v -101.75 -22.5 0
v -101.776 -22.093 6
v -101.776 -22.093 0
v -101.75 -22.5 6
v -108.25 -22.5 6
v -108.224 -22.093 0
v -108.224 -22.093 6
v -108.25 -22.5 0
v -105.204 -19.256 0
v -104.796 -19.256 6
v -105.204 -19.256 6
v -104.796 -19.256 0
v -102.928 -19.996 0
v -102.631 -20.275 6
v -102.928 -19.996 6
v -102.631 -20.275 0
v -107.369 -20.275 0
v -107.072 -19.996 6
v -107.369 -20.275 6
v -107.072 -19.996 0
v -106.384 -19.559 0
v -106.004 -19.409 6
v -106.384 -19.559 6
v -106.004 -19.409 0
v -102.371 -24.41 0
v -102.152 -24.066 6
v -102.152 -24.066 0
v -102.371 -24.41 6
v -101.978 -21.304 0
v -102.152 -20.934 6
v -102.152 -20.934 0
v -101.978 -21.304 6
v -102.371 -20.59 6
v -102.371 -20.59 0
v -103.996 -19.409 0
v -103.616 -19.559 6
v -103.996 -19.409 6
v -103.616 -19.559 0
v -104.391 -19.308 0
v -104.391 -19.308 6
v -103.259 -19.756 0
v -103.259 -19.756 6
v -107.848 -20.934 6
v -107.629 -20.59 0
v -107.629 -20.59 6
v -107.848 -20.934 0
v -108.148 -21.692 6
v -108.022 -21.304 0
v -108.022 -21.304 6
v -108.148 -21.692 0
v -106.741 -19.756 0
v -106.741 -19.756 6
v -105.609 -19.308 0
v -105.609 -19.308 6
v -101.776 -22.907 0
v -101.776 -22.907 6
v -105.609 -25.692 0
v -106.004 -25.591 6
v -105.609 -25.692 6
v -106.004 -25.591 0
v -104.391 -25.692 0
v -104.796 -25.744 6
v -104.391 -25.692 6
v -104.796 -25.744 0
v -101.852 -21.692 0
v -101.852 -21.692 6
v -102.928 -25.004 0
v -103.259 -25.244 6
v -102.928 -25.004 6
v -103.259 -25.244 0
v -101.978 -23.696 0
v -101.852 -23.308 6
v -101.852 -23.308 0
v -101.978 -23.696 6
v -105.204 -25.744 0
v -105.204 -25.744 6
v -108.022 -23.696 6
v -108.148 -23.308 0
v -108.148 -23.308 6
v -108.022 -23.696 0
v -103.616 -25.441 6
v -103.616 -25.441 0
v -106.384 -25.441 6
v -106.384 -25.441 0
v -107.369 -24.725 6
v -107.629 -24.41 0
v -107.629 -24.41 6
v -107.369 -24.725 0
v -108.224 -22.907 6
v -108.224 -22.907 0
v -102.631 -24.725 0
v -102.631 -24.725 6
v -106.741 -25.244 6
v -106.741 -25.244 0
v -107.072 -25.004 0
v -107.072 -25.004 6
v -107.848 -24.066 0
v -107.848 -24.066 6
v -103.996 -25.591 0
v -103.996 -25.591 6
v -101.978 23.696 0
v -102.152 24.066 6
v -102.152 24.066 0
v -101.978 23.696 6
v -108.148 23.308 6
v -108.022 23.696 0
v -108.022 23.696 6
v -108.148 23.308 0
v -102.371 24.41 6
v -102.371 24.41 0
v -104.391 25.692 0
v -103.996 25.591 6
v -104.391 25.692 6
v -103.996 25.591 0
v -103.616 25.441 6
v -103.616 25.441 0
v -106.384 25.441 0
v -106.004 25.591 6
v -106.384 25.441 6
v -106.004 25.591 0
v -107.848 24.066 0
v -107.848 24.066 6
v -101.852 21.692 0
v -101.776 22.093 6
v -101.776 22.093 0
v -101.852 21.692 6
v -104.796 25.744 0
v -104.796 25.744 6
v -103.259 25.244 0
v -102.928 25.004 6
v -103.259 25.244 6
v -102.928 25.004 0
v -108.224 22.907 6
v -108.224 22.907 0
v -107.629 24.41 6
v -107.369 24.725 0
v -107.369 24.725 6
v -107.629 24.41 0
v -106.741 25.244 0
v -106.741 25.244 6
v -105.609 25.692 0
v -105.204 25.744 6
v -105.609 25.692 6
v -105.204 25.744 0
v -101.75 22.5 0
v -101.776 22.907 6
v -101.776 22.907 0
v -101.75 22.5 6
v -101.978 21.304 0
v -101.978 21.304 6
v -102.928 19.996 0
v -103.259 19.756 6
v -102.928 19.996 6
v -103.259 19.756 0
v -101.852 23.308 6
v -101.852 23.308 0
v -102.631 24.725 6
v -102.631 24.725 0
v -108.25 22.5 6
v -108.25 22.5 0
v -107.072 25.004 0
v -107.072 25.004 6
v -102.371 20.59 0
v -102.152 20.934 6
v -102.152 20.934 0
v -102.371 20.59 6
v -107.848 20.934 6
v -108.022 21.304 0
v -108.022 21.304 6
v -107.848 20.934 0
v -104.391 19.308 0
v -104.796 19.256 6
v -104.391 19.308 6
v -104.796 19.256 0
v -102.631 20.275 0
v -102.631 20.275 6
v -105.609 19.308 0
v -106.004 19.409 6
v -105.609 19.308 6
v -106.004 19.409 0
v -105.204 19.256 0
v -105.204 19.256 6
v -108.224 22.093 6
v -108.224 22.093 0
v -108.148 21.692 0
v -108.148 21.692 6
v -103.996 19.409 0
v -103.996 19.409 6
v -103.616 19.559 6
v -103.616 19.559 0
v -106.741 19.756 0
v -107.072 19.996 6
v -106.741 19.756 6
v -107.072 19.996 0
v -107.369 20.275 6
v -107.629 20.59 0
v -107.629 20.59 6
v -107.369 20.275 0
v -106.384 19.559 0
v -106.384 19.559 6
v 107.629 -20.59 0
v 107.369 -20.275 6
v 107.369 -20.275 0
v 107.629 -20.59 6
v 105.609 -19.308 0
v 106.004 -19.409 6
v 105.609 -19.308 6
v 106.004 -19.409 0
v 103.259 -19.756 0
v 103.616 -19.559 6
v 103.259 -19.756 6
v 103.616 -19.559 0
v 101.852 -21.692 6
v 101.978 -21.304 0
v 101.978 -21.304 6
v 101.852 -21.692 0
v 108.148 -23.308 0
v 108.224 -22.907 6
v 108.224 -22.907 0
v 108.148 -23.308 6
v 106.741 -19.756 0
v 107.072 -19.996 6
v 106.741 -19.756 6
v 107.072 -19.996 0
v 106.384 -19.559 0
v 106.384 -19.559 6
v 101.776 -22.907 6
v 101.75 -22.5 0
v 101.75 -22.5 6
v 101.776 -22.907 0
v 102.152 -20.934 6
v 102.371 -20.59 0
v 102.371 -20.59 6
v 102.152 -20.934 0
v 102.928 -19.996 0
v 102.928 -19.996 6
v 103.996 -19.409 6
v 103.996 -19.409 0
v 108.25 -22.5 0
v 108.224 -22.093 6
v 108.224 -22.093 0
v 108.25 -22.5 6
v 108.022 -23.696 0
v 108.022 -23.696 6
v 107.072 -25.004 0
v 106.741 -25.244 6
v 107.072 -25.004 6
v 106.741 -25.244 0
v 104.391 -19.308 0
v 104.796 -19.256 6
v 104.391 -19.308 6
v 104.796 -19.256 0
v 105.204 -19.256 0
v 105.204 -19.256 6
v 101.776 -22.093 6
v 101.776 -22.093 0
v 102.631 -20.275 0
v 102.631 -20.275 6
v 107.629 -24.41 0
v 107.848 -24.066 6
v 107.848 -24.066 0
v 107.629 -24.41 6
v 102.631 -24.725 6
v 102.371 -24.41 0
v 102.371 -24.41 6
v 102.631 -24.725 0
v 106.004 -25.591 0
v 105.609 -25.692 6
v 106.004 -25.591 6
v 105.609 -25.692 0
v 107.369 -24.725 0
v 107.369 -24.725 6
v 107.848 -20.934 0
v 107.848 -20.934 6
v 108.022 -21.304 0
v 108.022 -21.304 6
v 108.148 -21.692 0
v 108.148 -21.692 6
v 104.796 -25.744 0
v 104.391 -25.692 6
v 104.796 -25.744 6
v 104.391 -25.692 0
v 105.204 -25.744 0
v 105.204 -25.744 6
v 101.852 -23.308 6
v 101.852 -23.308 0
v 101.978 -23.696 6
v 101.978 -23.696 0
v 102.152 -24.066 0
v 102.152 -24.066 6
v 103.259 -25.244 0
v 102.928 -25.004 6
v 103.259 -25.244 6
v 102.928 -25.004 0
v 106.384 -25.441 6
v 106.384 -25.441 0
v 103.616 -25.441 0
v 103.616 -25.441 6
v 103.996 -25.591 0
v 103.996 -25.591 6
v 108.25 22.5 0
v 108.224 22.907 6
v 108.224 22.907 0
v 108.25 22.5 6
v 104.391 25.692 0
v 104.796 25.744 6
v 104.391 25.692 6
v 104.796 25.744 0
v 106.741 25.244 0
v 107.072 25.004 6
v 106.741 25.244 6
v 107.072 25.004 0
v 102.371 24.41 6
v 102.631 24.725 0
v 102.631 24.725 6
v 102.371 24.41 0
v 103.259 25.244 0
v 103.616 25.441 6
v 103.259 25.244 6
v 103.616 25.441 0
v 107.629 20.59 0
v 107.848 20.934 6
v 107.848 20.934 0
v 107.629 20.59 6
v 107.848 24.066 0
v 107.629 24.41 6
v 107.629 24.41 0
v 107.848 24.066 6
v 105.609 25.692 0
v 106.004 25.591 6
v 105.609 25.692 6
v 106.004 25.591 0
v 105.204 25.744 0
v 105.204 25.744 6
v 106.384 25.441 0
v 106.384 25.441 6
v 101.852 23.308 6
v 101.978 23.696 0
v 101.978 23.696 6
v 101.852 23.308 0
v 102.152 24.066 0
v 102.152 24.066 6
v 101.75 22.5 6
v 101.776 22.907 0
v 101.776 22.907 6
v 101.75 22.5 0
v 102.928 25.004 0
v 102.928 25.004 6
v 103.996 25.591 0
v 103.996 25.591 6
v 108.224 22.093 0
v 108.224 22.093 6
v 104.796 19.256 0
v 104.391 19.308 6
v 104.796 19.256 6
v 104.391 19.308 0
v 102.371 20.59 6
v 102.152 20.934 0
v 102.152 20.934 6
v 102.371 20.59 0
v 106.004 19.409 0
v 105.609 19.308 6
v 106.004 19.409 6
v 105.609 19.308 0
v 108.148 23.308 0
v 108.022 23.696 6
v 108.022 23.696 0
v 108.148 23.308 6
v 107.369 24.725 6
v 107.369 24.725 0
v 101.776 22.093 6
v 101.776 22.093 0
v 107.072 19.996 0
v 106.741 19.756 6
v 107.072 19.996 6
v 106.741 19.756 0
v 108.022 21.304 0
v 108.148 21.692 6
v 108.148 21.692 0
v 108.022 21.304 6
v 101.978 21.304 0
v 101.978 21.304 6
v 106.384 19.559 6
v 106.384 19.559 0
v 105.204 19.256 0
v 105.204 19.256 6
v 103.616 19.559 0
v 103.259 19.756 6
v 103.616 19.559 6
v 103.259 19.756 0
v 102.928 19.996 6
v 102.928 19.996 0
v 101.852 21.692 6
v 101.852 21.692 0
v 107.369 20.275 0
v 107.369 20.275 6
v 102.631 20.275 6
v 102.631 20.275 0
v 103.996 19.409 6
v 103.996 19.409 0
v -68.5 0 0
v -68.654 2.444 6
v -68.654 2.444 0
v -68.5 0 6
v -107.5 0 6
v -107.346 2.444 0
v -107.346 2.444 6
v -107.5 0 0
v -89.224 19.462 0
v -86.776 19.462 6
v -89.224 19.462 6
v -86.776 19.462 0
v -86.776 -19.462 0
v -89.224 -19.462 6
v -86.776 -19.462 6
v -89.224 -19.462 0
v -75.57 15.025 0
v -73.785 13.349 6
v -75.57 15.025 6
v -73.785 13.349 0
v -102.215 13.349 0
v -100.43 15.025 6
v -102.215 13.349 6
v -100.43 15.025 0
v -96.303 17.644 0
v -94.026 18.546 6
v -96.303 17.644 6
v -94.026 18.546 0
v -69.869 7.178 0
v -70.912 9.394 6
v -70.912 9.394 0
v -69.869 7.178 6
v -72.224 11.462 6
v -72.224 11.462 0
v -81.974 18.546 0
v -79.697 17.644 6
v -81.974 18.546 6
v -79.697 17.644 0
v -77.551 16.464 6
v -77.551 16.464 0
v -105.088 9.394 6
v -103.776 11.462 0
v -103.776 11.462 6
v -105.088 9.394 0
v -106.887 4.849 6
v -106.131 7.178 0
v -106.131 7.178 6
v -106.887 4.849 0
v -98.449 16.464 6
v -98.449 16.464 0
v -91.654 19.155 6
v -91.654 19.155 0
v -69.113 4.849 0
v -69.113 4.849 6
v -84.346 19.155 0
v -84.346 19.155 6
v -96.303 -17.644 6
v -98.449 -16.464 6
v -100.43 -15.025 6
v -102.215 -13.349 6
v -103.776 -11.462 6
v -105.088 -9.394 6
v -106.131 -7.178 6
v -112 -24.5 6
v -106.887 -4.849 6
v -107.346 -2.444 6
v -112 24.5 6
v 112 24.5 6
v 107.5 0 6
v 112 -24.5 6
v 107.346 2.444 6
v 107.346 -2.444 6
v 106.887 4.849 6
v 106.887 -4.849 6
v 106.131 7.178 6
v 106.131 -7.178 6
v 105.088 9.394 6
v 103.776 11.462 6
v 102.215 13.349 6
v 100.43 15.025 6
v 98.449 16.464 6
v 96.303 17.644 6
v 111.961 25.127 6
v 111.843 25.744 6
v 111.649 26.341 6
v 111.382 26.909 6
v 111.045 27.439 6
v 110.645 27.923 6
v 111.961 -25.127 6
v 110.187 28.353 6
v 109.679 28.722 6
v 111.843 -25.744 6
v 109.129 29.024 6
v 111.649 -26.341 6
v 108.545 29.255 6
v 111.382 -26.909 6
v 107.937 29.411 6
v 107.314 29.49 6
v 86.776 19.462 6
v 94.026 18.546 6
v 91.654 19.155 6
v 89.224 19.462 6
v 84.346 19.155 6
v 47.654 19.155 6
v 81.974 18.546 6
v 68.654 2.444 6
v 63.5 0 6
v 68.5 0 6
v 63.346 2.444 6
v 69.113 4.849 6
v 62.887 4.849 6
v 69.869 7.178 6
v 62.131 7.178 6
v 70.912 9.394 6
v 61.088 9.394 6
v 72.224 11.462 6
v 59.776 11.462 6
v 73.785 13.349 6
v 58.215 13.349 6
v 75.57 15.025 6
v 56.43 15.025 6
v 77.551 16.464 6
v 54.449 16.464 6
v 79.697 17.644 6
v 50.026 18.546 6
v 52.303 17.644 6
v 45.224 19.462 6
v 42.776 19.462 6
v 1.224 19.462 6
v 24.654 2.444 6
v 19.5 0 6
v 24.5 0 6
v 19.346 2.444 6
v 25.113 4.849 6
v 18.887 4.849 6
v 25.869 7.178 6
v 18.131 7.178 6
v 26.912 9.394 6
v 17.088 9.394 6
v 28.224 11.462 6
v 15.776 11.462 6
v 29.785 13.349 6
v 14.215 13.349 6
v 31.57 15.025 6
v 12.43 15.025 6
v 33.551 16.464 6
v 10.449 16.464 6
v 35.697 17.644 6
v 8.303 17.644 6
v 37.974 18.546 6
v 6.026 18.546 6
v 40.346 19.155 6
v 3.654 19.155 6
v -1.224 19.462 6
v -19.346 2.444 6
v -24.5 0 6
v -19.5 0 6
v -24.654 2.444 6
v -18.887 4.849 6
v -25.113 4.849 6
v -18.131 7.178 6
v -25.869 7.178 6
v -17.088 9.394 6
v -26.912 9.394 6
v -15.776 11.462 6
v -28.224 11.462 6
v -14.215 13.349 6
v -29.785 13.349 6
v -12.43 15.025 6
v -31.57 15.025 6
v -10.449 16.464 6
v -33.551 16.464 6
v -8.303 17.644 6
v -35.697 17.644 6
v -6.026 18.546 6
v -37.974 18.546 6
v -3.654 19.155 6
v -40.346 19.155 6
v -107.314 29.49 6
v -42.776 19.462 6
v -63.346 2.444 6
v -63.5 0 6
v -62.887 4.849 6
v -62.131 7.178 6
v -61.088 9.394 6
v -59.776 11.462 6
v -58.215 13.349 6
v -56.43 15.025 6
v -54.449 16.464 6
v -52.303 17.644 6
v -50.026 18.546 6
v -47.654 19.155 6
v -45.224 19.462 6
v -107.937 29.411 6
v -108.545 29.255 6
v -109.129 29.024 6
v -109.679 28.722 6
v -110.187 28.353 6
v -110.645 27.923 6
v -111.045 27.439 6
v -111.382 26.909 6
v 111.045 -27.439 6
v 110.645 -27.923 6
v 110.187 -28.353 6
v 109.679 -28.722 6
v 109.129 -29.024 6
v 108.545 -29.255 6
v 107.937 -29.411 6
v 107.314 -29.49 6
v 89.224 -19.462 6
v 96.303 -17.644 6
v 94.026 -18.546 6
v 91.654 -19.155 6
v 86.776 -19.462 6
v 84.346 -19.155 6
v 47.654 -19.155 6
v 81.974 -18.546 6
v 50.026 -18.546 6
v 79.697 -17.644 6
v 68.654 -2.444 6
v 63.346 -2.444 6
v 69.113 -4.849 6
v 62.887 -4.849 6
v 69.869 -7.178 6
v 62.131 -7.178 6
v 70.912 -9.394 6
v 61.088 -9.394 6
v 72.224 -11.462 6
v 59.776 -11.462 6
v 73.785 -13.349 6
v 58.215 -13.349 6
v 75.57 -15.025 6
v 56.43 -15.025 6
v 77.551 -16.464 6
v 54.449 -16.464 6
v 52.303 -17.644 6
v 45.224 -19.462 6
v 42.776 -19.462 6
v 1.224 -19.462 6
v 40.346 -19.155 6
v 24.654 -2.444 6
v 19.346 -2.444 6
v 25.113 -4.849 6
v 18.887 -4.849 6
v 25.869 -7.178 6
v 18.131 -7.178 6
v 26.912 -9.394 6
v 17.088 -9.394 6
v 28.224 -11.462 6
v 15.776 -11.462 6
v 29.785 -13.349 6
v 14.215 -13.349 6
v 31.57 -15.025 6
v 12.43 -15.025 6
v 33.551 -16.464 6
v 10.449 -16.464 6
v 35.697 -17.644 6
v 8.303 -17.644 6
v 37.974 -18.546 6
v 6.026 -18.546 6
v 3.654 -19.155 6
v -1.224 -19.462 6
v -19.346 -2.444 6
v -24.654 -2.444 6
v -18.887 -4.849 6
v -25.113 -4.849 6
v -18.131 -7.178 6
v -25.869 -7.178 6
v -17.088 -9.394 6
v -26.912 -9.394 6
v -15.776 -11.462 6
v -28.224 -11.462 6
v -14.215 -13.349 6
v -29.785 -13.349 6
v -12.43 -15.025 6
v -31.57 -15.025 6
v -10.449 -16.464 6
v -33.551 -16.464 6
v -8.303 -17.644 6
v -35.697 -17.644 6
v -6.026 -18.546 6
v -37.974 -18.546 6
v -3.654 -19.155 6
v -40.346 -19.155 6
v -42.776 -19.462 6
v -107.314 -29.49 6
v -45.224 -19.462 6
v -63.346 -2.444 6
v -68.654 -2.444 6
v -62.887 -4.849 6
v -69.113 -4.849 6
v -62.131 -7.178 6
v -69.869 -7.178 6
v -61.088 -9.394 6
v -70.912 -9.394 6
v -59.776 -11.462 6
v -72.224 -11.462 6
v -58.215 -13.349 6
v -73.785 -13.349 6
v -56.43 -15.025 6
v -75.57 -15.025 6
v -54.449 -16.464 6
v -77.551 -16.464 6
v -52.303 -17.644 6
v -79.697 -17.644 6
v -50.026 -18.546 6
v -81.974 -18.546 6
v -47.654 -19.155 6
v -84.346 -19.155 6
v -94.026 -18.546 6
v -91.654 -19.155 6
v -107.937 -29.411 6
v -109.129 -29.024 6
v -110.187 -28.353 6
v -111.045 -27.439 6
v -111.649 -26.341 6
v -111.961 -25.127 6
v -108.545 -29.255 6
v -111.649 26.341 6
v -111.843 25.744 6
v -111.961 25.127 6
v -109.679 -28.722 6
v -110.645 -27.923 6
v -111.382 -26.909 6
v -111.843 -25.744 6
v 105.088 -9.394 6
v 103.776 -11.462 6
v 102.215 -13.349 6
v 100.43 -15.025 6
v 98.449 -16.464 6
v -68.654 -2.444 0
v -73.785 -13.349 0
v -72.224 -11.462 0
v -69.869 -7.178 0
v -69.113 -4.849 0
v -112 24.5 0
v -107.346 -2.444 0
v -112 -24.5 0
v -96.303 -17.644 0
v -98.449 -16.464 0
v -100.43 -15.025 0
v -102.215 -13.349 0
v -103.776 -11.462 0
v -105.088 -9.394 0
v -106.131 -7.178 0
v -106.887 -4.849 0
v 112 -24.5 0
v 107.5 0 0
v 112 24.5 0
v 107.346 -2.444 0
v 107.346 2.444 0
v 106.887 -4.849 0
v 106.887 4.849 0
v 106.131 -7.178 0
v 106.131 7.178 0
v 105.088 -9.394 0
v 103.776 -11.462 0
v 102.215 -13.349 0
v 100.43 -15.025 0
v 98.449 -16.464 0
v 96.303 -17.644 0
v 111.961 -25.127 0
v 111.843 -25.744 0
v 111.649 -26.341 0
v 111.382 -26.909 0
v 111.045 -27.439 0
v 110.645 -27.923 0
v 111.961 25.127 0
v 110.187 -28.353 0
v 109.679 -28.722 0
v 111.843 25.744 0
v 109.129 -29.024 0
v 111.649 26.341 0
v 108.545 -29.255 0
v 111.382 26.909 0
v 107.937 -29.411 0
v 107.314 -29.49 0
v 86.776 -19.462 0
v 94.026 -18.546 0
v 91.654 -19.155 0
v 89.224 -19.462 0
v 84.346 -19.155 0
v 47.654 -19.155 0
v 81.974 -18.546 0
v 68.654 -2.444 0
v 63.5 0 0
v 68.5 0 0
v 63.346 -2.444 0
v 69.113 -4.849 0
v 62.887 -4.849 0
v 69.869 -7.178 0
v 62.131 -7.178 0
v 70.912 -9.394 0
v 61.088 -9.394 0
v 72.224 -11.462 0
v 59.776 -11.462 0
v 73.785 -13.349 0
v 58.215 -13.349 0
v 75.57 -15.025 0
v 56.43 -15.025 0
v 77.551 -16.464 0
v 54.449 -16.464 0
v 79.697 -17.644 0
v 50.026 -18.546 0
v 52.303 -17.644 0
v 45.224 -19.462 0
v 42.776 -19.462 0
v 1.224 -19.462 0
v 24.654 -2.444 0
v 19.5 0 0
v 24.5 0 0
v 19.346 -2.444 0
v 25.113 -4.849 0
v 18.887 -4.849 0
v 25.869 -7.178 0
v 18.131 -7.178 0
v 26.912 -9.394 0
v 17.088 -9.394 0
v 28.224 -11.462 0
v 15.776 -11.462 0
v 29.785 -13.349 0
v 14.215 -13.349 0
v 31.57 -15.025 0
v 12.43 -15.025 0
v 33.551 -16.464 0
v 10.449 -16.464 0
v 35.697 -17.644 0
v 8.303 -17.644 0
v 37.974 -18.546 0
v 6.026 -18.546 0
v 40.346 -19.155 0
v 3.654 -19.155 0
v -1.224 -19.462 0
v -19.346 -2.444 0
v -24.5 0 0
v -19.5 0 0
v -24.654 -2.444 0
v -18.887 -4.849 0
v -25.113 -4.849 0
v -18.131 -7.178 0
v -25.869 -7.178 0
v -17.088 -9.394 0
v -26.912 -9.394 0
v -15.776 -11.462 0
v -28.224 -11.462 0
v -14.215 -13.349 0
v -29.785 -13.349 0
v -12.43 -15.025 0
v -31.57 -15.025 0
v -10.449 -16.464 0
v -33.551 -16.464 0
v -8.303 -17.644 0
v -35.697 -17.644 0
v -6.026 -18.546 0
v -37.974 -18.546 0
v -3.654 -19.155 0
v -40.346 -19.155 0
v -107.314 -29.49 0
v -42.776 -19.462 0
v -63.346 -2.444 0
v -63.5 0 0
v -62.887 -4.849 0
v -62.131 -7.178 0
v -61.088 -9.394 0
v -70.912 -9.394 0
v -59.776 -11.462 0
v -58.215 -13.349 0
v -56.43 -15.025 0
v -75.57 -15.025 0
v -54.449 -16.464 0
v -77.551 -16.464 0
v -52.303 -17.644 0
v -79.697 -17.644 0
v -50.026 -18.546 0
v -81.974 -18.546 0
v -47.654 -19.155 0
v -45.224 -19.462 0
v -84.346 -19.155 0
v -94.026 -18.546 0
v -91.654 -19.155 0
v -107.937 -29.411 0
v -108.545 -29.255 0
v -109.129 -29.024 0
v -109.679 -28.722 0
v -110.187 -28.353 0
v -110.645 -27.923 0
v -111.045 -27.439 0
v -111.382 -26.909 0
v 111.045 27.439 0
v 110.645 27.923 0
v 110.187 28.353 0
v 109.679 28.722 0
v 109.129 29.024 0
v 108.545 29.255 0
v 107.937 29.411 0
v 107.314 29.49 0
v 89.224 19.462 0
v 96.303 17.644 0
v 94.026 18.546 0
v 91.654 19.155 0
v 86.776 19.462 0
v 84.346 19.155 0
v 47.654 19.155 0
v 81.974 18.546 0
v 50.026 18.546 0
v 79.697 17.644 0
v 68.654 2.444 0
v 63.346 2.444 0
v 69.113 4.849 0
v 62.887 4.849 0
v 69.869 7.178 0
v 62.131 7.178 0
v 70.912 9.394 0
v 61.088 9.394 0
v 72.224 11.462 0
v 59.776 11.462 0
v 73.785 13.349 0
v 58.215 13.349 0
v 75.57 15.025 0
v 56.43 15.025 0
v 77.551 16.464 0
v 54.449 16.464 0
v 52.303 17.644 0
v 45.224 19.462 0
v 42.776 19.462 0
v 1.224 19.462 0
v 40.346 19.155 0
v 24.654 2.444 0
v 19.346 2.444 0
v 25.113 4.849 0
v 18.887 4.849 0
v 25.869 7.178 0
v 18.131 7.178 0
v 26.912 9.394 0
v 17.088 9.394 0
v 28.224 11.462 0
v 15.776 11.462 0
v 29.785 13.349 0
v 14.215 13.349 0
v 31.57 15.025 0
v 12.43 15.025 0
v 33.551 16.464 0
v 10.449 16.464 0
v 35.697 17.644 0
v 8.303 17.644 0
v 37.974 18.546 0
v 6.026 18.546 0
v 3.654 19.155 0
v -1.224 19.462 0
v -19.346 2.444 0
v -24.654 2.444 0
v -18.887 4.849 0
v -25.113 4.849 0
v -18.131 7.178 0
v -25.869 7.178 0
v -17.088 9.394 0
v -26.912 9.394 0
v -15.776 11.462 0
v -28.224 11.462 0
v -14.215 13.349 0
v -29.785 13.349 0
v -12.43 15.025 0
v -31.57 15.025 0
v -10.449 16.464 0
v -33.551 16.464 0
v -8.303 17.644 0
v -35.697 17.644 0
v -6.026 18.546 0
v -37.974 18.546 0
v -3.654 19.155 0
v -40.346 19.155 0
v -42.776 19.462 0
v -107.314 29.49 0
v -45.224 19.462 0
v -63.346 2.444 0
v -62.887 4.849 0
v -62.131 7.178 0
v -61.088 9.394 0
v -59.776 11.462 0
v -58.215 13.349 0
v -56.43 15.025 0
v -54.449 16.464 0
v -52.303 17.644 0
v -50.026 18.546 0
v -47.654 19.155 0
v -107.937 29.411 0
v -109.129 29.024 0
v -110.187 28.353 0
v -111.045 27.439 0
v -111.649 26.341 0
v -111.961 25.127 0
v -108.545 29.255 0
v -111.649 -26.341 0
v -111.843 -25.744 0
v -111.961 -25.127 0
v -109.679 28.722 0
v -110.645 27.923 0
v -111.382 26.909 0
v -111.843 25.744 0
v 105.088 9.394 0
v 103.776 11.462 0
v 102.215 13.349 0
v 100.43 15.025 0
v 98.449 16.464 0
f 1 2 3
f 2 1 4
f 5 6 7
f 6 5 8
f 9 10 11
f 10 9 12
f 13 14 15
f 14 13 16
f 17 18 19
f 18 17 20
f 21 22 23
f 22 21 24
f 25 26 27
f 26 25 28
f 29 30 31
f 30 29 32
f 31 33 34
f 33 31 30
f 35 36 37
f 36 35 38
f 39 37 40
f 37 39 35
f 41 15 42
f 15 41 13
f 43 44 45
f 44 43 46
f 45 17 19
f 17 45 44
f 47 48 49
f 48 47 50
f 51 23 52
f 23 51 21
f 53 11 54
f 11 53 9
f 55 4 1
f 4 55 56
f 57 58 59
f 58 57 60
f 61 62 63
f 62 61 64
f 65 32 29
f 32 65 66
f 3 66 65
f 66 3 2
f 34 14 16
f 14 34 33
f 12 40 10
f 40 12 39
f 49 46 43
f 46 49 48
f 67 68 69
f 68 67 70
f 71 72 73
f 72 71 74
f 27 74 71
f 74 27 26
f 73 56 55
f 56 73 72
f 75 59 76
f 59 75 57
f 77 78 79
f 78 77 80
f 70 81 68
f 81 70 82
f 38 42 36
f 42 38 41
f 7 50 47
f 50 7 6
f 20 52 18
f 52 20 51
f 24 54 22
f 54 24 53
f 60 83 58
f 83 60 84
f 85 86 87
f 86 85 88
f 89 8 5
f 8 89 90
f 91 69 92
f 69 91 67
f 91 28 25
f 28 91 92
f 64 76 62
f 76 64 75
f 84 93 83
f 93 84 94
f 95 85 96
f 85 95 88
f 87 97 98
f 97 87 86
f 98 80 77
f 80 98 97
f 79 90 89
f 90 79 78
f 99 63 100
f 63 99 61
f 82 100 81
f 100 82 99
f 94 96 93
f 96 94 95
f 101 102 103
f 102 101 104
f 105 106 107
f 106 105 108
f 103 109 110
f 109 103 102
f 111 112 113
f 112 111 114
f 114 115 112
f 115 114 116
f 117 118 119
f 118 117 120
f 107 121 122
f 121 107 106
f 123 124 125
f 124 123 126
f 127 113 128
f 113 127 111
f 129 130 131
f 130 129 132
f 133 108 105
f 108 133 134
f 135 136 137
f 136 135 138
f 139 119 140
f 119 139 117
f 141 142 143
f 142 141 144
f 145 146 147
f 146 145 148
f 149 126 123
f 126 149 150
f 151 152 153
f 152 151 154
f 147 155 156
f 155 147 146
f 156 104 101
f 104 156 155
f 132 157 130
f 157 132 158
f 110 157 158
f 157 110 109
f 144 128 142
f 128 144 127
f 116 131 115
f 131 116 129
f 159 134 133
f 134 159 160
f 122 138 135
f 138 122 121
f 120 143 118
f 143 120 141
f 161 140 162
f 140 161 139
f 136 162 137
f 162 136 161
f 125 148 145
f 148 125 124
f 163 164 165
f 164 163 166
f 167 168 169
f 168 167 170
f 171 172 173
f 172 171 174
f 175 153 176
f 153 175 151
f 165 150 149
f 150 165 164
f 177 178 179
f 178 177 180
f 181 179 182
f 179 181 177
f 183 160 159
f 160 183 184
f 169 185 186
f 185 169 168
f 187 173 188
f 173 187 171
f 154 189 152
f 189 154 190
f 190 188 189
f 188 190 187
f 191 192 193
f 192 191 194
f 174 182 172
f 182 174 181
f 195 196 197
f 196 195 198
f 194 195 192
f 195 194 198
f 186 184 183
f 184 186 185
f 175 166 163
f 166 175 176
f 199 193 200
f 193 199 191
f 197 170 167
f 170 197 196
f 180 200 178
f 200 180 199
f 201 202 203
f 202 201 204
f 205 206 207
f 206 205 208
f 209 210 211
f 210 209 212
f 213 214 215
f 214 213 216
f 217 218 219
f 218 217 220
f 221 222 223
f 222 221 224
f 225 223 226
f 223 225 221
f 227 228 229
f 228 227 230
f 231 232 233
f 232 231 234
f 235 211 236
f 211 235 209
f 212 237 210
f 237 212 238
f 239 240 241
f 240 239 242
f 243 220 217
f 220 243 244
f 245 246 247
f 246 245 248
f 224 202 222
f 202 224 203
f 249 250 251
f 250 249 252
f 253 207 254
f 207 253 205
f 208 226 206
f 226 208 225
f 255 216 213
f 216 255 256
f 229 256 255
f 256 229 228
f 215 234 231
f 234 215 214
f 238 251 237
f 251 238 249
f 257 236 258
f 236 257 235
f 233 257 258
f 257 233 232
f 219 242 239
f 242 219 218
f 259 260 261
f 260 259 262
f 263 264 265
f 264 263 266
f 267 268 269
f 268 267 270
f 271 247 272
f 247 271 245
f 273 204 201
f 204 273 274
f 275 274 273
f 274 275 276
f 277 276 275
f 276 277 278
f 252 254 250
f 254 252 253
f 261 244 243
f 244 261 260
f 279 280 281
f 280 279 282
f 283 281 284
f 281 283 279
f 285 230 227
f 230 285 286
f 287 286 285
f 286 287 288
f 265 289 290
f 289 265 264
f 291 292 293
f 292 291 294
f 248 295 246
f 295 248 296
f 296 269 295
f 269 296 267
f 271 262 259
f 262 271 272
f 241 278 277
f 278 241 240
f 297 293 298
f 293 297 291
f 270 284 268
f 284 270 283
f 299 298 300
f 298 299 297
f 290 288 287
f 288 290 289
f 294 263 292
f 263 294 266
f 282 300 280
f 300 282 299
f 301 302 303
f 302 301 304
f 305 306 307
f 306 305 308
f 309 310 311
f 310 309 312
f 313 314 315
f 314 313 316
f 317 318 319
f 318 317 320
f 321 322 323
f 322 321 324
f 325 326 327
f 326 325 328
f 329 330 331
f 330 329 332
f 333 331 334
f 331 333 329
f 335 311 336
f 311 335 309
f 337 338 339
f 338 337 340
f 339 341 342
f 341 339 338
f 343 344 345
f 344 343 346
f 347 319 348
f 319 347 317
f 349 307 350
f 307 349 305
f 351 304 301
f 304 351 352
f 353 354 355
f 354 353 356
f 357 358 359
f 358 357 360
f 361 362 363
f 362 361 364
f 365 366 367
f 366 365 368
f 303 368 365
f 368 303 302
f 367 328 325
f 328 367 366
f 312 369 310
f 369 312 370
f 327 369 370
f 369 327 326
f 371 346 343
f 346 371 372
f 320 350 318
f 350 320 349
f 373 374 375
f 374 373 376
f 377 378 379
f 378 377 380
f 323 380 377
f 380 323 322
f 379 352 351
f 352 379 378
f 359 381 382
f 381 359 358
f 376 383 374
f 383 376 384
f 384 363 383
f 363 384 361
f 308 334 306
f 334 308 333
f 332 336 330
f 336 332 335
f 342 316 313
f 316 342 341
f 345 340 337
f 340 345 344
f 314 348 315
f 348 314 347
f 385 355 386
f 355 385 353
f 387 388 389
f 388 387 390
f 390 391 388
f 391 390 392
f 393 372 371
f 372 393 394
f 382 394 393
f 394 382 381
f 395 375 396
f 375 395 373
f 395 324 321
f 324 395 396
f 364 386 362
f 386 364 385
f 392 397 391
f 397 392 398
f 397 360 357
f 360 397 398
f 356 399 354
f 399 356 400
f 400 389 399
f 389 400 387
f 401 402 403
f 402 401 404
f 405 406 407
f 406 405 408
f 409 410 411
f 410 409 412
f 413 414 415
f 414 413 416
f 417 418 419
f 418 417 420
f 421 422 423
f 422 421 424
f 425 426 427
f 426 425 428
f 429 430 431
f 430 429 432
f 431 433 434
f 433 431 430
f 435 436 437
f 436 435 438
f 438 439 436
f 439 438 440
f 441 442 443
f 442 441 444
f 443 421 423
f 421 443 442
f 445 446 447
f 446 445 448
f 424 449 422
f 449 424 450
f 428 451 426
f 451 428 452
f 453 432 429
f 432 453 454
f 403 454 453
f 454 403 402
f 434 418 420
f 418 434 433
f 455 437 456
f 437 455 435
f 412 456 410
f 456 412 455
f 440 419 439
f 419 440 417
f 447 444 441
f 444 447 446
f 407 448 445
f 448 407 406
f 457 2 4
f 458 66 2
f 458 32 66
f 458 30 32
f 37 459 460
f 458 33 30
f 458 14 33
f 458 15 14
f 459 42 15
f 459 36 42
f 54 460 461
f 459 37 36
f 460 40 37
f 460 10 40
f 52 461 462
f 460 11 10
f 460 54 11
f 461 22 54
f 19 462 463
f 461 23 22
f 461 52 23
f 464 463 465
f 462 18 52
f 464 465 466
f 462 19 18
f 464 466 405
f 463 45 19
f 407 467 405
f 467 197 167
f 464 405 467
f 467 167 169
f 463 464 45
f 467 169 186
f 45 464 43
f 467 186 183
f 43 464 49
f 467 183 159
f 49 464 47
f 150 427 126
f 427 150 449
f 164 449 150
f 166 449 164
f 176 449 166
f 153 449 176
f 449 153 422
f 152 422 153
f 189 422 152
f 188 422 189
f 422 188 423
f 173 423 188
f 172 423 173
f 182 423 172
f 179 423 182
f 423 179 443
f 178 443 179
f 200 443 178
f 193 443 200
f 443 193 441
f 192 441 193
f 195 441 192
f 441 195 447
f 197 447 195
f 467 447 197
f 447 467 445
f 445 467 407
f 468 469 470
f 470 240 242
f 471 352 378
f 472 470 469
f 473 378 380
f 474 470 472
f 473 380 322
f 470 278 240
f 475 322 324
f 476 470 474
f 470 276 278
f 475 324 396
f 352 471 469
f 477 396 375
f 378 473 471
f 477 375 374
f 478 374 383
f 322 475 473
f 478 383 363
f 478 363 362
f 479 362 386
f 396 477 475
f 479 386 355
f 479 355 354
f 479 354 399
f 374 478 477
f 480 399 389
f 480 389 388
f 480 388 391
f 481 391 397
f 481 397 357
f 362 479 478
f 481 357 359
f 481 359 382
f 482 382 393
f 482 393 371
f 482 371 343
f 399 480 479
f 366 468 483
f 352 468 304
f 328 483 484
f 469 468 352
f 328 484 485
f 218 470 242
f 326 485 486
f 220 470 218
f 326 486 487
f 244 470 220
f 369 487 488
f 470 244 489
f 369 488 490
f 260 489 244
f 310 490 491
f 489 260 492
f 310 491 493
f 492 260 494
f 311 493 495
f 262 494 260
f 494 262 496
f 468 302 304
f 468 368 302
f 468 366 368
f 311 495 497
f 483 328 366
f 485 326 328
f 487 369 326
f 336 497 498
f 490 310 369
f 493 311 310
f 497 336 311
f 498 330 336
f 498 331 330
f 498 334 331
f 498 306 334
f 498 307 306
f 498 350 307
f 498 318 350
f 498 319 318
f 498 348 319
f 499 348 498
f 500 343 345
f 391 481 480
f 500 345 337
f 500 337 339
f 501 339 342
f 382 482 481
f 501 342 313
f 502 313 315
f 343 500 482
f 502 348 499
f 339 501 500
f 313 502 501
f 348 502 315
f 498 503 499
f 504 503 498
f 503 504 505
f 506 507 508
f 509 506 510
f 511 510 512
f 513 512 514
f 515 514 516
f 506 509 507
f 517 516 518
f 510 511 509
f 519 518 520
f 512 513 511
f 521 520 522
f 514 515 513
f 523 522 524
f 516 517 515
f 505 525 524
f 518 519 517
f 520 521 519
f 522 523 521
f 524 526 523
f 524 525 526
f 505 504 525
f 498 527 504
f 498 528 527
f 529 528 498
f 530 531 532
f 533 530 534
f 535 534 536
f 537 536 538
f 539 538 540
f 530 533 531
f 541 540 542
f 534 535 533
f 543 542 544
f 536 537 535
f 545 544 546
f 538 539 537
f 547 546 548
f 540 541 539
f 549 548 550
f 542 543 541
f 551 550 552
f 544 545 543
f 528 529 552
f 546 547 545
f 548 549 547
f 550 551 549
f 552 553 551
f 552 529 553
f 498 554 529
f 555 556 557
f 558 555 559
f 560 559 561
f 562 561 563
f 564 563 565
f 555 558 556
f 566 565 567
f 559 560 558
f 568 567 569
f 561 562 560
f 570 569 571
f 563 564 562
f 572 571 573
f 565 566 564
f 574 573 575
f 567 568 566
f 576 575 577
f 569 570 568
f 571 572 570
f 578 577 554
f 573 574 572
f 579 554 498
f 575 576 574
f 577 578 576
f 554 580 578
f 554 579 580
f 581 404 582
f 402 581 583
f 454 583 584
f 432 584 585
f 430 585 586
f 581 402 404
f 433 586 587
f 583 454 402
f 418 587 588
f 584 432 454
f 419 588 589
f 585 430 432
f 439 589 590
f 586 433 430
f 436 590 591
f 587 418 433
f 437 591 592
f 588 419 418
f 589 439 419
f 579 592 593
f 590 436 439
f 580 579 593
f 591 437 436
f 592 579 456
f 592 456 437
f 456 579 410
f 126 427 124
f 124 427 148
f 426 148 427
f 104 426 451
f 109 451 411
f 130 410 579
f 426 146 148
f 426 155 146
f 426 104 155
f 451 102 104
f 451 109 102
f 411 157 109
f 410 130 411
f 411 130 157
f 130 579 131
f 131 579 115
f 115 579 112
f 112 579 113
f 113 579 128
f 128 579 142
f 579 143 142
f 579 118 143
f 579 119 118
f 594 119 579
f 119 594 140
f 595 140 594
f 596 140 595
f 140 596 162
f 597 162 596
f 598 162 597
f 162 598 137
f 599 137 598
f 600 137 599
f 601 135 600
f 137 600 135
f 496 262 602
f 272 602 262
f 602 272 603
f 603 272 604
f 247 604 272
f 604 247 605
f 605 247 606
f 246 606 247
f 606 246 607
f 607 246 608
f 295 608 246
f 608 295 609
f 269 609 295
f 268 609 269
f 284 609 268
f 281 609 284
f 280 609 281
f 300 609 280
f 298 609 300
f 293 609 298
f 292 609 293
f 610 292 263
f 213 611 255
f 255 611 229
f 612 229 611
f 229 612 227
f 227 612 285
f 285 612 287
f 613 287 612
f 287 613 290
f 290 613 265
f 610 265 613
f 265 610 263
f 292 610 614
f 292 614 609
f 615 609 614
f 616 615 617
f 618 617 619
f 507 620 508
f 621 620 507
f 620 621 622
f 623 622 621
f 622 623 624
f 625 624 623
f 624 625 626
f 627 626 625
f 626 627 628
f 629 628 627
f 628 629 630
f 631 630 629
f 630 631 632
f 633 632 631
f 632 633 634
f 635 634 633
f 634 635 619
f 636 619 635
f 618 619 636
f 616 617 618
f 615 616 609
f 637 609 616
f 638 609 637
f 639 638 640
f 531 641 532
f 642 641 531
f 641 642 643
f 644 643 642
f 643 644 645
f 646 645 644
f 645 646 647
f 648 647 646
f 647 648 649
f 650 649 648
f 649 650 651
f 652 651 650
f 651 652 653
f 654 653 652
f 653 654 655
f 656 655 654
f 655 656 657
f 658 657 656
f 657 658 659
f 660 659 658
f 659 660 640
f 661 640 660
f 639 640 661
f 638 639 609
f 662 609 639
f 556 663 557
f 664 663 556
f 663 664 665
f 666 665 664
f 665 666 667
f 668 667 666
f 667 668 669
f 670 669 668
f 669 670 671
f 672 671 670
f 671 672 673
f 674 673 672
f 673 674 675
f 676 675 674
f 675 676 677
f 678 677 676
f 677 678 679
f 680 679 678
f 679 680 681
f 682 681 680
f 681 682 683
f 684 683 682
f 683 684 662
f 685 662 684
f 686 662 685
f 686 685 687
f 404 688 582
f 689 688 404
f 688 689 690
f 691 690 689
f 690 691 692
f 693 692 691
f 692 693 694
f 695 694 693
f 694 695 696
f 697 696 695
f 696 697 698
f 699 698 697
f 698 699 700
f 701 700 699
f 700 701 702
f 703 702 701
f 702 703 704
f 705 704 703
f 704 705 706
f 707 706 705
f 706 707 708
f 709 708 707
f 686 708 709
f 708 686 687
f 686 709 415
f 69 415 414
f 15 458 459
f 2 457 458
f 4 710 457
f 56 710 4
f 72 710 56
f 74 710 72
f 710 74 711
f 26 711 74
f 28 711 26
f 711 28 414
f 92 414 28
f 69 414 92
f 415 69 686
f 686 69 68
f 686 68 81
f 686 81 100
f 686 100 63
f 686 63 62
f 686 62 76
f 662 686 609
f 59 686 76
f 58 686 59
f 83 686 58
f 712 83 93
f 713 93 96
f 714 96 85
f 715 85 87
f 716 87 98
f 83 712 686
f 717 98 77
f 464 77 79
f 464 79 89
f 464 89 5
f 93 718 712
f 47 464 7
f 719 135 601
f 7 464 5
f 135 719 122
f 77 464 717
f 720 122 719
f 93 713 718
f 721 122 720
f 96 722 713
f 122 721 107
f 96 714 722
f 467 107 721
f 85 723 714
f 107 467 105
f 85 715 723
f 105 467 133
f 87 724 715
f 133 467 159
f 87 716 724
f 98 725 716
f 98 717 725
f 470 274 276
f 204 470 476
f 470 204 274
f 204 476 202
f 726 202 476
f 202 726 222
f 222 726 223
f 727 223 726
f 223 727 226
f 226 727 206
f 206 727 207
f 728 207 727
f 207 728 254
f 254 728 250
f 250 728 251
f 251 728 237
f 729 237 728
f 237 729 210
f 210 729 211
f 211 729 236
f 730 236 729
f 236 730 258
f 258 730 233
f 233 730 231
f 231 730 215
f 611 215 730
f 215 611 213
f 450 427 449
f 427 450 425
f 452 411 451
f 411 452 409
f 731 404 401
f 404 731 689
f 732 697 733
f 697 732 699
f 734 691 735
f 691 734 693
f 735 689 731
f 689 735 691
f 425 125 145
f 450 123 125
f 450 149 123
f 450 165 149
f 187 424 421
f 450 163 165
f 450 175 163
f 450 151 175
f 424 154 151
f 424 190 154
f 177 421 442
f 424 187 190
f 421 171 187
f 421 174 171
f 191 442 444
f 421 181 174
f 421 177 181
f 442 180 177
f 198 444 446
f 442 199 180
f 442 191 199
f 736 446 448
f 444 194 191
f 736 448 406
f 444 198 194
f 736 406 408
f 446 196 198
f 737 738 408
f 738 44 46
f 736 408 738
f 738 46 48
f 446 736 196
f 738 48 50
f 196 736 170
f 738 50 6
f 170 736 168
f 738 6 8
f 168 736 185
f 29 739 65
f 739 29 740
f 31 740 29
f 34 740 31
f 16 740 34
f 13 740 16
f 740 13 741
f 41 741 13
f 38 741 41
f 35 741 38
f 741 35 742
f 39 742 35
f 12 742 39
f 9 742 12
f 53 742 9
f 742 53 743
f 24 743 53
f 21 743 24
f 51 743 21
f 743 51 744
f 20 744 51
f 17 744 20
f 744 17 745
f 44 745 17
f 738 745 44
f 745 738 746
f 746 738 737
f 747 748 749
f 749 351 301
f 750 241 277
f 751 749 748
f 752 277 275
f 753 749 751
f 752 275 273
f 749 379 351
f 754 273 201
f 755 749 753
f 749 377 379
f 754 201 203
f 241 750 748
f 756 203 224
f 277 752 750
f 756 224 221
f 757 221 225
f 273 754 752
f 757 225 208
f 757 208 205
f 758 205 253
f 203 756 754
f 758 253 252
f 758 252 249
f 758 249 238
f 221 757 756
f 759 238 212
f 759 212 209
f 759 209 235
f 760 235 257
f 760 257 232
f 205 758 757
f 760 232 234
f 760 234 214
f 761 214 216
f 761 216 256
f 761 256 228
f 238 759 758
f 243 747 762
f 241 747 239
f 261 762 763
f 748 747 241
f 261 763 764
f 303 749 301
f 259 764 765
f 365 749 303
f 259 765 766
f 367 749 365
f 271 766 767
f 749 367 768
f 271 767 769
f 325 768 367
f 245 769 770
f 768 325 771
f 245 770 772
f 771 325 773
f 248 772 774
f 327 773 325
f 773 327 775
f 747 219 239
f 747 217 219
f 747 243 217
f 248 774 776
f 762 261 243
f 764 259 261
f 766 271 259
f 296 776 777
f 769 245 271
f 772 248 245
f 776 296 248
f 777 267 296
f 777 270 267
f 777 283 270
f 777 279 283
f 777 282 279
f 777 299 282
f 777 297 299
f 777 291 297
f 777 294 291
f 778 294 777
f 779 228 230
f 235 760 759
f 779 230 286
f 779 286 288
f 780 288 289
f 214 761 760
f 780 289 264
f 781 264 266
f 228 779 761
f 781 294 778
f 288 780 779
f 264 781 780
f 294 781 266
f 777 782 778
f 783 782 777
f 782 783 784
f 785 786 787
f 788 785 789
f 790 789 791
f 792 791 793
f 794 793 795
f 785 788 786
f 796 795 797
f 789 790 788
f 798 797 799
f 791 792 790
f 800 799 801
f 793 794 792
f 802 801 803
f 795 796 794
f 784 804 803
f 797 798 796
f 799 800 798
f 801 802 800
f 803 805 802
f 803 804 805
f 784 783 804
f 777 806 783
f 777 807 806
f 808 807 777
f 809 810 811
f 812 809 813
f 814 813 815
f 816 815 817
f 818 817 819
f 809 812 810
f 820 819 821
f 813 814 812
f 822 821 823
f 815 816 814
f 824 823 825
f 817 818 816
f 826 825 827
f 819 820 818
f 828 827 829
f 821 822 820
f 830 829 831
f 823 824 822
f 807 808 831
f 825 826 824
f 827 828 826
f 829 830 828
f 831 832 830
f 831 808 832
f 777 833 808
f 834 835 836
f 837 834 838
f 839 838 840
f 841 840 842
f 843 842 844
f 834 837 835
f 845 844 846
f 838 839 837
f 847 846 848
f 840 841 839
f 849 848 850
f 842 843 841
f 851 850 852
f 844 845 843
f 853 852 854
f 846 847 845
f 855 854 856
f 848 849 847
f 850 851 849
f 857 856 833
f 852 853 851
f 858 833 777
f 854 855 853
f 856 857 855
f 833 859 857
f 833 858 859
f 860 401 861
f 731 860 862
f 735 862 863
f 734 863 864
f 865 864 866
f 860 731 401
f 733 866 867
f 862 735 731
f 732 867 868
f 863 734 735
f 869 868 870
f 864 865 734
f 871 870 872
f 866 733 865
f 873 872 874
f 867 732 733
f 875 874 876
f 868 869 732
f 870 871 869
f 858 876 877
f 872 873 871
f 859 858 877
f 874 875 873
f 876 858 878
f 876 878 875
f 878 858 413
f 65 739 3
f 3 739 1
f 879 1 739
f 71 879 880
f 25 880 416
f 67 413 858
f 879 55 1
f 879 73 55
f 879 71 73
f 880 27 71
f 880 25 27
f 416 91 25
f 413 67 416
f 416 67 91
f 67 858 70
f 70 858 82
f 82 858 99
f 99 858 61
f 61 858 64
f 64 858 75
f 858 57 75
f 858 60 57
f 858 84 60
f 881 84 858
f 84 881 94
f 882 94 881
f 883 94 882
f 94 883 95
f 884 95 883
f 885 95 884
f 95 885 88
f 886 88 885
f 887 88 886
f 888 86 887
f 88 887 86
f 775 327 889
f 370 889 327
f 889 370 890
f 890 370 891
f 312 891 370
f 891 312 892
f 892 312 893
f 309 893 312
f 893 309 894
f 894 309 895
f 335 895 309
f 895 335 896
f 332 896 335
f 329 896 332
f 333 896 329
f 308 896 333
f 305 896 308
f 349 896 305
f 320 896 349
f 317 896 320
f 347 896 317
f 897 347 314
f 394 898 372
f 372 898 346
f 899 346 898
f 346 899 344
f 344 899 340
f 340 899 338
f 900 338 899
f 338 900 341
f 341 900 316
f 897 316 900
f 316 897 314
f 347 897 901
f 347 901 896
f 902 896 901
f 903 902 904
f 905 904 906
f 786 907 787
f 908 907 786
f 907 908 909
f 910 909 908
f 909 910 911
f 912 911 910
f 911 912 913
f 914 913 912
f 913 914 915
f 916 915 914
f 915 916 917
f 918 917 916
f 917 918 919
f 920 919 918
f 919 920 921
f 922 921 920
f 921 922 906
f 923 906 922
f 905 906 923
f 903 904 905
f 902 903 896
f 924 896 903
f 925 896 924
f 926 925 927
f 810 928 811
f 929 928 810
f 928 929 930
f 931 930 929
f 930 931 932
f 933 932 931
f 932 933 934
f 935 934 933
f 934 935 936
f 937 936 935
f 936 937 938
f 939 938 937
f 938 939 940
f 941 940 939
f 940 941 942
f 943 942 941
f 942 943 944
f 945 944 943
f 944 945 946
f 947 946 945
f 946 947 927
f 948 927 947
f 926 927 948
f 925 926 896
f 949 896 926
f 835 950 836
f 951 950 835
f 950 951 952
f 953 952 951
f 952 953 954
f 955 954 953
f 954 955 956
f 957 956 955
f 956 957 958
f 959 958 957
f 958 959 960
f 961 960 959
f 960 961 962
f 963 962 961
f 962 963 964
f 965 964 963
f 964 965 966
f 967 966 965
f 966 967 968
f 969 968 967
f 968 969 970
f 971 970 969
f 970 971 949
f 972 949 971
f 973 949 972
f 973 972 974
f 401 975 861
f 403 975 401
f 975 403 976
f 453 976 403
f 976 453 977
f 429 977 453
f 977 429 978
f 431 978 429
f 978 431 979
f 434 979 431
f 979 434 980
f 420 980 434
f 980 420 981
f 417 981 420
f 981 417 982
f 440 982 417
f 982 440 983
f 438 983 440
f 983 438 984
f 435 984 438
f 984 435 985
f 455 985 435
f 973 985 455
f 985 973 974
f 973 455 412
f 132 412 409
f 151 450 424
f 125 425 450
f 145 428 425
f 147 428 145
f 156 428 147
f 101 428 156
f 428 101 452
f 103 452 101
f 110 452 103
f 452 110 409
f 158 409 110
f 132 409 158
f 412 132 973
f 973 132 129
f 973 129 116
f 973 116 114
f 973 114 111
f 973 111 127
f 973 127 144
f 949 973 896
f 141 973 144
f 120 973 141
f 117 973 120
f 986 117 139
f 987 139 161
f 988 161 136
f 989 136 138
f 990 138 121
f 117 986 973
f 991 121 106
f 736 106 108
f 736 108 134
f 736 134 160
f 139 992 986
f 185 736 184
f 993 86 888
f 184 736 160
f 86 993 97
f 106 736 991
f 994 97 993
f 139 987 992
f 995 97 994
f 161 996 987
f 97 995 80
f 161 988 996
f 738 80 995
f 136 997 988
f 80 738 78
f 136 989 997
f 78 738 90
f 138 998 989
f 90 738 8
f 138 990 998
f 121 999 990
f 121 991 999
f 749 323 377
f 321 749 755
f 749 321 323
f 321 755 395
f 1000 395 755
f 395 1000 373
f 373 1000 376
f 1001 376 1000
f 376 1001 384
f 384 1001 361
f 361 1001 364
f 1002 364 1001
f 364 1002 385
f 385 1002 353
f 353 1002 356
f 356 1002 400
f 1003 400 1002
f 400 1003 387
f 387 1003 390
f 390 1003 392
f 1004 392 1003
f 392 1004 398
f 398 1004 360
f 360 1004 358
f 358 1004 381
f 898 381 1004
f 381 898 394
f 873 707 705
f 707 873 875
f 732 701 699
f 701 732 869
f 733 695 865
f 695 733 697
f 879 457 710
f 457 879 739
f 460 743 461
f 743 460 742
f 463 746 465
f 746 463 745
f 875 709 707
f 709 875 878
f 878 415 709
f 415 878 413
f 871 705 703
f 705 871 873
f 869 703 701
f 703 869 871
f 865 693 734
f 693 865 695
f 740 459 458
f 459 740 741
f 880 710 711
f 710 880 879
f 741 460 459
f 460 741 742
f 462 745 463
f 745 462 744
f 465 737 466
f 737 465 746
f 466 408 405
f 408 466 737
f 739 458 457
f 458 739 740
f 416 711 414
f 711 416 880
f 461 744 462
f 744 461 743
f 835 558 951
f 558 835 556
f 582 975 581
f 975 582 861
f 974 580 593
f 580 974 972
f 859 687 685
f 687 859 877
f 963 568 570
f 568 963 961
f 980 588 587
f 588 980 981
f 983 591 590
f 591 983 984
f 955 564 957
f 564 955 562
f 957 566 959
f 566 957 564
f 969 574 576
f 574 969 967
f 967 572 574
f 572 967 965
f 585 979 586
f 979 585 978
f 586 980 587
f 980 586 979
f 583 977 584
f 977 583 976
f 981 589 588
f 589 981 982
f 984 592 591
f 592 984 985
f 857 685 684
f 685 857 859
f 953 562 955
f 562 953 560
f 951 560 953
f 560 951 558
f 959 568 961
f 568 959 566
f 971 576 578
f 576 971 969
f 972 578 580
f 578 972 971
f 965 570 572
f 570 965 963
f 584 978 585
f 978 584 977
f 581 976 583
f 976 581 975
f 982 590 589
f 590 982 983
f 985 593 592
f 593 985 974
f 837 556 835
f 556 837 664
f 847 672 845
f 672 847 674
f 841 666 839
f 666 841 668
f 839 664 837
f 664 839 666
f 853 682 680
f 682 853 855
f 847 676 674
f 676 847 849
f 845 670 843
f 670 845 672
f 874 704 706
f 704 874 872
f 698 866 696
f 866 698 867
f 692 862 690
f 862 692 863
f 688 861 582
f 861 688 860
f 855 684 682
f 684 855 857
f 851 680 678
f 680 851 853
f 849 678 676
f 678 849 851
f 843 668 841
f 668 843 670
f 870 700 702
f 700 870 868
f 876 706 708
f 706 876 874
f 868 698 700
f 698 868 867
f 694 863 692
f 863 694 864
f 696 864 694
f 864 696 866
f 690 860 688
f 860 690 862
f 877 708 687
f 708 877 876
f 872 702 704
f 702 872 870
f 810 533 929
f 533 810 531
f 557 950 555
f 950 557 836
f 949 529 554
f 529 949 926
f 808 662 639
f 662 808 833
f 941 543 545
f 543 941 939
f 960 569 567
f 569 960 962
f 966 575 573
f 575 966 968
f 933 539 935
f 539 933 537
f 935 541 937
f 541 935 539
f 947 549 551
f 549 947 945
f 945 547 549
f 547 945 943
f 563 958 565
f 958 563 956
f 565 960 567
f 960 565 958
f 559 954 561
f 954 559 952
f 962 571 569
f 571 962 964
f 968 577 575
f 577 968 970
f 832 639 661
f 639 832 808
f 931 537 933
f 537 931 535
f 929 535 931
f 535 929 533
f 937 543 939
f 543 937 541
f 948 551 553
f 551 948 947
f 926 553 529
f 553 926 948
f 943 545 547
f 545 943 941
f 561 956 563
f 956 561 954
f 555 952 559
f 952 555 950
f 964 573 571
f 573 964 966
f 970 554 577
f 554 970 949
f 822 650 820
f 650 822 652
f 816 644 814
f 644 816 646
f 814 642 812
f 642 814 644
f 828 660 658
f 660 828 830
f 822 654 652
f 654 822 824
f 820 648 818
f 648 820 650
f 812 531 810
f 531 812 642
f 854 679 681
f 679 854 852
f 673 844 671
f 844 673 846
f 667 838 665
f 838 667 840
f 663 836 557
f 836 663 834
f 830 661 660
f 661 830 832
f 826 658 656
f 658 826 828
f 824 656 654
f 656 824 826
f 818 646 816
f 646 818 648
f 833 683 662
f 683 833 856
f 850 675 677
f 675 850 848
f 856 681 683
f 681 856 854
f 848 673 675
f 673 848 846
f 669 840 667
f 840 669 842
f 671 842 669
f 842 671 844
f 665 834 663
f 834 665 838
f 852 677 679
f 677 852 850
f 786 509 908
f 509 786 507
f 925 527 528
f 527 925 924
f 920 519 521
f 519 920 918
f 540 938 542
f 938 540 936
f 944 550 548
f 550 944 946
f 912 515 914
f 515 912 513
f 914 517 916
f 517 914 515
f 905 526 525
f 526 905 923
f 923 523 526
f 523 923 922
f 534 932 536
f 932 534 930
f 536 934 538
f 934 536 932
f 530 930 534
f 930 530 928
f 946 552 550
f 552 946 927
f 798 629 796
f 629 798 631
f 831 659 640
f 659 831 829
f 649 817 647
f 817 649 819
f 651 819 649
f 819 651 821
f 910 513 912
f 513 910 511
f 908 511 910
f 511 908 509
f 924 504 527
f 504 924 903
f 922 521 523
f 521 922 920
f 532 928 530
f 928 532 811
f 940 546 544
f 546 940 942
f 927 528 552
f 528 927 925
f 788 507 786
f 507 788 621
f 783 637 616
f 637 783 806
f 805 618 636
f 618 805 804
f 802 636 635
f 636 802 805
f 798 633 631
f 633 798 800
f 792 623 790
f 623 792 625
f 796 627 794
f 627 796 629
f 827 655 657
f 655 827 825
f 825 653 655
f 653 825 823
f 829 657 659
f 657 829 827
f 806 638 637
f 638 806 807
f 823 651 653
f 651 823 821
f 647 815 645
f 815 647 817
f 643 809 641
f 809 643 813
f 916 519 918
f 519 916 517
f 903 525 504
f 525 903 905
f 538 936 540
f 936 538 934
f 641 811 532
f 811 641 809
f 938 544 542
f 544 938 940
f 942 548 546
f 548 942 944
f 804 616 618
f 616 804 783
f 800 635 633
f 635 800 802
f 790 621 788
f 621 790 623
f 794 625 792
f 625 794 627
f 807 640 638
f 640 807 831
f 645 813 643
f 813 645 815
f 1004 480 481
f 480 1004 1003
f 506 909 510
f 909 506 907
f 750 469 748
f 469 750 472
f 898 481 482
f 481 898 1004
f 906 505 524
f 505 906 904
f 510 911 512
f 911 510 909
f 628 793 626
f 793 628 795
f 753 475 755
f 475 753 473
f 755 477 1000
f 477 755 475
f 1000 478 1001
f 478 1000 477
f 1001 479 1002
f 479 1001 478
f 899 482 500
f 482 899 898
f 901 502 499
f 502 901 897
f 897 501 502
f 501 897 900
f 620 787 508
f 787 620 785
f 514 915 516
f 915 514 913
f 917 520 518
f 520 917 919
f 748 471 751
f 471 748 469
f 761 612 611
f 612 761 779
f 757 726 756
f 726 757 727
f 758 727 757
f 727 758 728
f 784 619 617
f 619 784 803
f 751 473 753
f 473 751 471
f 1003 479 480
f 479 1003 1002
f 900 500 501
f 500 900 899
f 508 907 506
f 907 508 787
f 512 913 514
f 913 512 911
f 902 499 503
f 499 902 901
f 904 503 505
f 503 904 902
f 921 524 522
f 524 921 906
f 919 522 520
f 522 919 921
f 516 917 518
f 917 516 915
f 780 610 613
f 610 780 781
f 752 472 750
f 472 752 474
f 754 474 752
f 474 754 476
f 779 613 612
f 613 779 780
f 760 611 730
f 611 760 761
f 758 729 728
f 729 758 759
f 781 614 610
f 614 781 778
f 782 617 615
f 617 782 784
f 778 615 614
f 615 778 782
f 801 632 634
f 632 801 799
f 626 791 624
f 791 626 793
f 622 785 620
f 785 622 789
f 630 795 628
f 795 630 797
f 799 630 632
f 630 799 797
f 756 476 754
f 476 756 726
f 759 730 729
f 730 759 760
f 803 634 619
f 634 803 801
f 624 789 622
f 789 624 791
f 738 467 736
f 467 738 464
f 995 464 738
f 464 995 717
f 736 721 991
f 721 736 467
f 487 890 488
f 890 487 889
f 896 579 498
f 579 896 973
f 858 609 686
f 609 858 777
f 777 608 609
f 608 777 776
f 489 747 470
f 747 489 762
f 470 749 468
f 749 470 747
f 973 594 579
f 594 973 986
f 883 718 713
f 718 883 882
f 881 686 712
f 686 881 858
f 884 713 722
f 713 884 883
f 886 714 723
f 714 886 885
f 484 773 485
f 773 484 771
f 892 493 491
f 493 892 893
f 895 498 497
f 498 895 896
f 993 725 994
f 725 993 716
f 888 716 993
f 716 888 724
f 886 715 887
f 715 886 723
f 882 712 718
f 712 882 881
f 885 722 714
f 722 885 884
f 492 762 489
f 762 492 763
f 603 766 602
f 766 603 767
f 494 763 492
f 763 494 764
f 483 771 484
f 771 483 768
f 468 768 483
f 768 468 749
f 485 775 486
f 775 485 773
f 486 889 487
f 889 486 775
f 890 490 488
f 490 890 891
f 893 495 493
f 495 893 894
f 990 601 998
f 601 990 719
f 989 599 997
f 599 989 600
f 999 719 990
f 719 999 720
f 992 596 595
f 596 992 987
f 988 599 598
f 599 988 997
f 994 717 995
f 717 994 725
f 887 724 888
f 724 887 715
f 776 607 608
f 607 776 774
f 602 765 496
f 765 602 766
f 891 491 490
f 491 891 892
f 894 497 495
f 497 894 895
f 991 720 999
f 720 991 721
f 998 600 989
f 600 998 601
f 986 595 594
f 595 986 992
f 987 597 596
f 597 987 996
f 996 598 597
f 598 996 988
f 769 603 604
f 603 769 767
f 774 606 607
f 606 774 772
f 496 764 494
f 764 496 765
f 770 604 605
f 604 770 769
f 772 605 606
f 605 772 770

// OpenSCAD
$fn = 50;


difference() {
	union() {
		hull() {
			translate(v = [-107.0000000000, 24.5000000000, 0]) {
				cylinder(h = 6, r = 5);
			}
			translate(v = [107.0000000000, 24.5000000000, 0]) {
				cylinder(h = 6, r = 5);
			}
			translate(v = [-107.0000000000, -24.5000000000, 0]) {
				cylinder(h = 6, r = 5);
			}
			translate(v = [107.0000000000, -24.5000000000, 0]) {
				cylinder(h = 6, r = 5);
			}
		}
	}
	union() {
		#translate(v = [-105.0000000000, -22.5000000000, -100.0000000000]) {
			cylinder(h = 200, r = 3.2500000000);
		}
		#translate(v = [-105.0000000000, 22.5000000000, -100.0000000000]) {
			cylinder(h = 200, r = 3.2500000000);
		}
		#translate(v = [105.0000000000, -22.5000000000, -100.0000000000]) {
			cylinder(h = 200, r = 3.2500000000);
		}
		#translate(v = [105.0000000000, 22.5000000000, -100.0000000000]) {
			cylinder(h = 200, r = 3.2500000000);
		}
		#translate(v = [-88.0000000000, 0, 0]) {
			cylinder(h = 6, r = 19.5000000000);
		}
		#translate(v = [-44.0000000000, 0, 0]) {
			cylinder(h = 6, r = 19.5000000000);
		}
		#cylinder(h = 6, r = 19.5000000000);
		#translate(v = [44.0000000000, 0, 0]) {
			cylinder(h = 6, r = 19.5000000000);
		}
		#translate(v = [88.0000000000, 0, 0]) {
			cylinder(h = 6, r = 19.5000000000);
		}
	}
}
